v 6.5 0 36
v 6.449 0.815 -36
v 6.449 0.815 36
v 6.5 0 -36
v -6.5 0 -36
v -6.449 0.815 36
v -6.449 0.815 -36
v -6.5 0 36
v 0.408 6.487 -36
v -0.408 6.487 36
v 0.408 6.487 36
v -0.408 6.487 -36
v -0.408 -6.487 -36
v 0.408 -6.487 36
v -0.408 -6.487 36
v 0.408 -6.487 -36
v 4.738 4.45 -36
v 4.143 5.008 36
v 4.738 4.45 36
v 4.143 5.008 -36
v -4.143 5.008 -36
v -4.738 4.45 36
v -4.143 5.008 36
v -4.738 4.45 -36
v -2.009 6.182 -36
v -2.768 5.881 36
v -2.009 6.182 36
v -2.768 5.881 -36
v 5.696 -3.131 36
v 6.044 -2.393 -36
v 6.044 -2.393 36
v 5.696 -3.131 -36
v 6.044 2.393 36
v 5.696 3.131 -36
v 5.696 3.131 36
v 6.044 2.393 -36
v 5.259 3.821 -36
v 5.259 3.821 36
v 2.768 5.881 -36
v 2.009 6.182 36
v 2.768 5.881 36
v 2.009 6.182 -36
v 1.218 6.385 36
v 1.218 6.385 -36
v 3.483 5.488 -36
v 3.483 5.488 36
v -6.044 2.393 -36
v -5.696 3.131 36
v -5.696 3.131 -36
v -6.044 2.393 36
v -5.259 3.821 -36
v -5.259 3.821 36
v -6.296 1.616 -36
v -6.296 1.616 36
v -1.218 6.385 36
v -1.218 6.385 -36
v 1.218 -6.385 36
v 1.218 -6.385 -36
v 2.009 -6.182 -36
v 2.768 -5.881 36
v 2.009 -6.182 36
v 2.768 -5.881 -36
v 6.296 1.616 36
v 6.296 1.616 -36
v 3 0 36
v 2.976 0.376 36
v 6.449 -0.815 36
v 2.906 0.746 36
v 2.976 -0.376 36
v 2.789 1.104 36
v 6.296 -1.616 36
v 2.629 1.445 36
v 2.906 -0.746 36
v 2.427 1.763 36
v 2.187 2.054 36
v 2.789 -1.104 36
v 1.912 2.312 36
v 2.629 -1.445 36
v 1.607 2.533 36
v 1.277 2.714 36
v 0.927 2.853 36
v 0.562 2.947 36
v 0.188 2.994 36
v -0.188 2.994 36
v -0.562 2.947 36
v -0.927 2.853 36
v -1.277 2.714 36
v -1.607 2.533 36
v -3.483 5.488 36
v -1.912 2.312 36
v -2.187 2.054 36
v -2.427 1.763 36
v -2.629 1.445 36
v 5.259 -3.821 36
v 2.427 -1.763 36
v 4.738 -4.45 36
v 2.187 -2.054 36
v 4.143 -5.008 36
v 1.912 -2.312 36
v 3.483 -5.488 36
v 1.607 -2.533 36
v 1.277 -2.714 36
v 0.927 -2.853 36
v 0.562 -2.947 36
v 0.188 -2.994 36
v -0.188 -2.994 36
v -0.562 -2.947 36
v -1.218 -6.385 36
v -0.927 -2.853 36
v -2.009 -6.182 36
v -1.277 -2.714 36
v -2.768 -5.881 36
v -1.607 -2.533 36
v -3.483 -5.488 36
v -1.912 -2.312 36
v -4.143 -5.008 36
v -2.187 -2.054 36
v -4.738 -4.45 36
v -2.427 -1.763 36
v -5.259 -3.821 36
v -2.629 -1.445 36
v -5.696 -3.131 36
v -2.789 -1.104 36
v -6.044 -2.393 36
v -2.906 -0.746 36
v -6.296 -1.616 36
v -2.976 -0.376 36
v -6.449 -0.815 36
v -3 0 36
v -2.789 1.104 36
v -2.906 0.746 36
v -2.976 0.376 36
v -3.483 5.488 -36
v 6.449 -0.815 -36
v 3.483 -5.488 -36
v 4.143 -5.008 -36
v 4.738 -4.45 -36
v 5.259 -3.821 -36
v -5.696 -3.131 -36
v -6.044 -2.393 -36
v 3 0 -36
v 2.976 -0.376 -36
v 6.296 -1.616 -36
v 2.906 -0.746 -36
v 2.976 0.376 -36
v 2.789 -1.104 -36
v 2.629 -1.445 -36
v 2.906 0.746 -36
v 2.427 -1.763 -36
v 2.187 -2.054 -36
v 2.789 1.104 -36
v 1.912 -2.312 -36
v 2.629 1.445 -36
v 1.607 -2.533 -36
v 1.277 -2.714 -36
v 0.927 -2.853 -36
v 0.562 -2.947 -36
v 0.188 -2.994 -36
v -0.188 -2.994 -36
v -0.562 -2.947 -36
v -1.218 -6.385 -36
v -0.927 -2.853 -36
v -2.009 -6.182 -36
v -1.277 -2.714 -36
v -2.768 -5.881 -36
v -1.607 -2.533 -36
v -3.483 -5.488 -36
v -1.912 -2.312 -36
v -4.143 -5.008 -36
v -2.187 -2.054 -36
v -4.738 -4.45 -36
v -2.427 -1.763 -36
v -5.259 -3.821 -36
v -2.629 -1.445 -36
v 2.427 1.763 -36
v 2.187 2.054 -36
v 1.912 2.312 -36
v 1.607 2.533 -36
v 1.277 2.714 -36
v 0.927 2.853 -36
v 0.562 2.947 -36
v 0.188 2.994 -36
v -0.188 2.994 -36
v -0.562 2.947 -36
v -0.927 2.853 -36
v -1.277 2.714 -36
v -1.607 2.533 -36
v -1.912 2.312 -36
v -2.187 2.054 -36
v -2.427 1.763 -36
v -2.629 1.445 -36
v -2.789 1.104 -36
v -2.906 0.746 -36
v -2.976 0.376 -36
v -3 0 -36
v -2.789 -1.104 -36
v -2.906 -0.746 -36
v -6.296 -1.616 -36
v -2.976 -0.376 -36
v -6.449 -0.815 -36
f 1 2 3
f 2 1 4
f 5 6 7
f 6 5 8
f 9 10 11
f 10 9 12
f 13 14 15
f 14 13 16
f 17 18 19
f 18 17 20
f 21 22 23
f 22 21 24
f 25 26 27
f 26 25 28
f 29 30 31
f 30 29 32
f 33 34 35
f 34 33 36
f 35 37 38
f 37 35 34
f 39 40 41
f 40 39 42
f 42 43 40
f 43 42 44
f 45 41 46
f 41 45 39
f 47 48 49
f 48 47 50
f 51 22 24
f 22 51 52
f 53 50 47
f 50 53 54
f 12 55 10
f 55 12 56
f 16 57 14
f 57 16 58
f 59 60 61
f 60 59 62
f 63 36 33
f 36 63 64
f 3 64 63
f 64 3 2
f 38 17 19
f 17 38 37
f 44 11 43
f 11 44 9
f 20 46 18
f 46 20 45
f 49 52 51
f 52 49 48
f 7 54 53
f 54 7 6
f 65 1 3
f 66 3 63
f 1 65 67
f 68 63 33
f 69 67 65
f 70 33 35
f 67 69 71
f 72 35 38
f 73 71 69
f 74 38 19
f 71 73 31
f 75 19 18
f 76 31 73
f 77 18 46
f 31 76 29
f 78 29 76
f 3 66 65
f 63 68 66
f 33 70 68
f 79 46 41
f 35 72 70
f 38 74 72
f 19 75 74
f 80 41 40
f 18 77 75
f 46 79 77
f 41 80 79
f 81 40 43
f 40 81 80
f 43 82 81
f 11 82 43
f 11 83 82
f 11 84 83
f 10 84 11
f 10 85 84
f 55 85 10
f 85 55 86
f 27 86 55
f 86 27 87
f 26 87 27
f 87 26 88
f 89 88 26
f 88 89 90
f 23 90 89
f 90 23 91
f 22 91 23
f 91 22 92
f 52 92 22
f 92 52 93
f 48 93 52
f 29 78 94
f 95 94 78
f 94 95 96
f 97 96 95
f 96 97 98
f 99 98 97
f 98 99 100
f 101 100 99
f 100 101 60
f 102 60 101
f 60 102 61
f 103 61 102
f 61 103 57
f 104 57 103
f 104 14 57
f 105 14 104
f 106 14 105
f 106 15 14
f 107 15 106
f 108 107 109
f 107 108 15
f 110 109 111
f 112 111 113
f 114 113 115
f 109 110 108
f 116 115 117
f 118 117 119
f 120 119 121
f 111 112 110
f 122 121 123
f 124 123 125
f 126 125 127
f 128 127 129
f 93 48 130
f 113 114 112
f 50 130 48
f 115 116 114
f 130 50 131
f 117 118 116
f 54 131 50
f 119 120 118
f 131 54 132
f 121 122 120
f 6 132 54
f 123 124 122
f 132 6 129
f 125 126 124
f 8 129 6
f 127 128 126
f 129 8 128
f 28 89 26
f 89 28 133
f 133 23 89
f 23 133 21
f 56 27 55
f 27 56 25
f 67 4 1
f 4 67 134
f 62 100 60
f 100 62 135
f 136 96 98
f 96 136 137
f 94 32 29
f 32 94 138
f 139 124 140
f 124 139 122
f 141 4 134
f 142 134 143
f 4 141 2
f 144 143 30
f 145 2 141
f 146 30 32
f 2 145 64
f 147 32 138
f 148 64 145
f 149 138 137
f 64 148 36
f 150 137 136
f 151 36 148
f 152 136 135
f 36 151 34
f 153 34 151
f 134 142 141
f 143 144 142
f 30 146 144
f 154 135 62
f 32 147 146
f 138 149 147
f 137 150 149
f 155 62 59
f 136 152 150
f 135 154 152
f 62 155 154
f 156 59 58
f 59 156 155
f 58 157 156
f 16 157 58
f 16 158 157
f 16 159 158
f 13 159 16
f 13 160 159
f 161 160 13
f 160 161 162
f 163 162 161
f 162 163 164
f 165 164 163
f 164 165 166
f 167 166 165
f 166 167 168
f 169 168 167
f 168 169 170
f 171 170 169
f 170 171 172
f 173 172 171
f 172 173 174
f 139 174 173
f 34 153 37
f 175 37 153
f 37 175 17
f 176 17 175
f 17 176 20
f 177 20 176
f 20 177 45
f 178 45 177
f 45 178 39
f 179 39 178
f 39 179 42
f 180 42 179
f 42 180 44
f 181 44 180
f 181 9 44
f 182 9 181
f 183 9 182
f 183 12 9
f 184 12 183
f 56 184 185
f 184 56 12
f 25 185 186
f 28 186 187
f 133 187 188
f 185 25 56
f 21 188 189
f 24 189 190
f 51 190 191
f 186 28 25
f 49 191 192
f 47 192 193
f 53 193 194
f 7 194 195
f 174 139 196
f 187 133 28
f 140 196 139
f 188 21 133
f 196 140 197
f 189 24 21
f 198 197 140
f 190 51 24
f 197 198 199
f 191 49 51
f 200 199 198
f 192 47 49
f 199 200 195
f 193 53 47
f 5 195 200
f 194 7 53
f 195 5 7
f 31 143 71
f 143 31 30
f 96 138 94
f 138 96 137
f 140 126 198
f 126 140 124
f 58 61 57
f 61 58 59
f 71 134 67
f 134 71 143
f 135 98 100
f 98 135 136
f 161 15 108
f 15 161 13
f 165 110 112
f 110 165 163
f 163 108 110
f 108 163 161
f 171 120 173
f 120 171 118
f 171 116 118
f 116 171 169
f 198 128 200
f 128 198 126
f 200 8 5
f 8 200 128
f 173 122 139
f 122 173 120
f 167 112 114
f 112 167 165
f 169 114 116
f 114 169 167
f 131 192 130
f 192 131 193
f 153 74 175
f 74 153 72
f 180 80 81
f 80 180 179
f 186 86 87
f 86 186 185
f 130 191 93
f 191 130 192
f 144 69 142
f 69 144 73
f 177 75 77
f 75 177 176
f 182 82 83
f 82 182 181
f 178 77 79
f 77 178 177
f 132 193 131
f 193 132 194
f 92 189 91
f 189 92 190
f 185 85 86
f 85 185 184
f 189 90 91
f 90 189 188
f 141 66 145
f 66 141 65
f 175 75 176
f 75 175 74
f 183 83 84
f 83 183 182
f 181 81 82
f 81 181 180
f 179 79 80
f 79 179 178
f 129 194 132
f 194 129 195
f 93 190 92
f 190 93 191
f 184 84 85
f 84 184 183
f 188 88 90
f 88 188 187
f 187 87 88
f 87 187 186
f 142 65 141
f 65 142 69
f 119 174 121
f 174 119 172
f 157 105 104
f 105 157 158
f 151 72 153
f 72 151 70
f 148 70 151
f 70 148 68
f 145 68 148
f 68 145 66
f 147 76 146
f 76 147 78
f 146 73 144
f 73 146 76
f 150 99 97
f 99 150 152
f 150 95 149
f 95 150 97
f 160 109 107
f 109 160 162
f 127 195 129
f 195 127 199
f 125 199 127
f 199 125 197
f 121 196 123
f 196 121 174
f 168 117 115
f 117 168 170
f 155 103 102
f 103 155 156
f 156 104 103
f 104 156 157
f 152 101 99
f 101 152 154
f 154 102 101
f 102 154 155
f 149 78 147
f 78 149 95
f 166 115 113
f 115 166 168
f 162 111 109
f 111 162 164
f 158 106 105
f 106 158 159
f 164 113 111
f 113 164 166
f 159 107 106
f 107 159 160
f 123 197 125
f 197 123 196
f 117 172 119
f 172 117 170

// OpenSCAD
$fn = 50;


difference() {
	union() {
		translate(v = [0, 0, -36.0000000000]) {
			cylinder(h = 72, r = 6.5000000000);
		}
	}
	union() {
		translate(v = [0, 0, -100.0000000000]) {
			cylinder(h = 200, r = 3);
		}
	}
}
